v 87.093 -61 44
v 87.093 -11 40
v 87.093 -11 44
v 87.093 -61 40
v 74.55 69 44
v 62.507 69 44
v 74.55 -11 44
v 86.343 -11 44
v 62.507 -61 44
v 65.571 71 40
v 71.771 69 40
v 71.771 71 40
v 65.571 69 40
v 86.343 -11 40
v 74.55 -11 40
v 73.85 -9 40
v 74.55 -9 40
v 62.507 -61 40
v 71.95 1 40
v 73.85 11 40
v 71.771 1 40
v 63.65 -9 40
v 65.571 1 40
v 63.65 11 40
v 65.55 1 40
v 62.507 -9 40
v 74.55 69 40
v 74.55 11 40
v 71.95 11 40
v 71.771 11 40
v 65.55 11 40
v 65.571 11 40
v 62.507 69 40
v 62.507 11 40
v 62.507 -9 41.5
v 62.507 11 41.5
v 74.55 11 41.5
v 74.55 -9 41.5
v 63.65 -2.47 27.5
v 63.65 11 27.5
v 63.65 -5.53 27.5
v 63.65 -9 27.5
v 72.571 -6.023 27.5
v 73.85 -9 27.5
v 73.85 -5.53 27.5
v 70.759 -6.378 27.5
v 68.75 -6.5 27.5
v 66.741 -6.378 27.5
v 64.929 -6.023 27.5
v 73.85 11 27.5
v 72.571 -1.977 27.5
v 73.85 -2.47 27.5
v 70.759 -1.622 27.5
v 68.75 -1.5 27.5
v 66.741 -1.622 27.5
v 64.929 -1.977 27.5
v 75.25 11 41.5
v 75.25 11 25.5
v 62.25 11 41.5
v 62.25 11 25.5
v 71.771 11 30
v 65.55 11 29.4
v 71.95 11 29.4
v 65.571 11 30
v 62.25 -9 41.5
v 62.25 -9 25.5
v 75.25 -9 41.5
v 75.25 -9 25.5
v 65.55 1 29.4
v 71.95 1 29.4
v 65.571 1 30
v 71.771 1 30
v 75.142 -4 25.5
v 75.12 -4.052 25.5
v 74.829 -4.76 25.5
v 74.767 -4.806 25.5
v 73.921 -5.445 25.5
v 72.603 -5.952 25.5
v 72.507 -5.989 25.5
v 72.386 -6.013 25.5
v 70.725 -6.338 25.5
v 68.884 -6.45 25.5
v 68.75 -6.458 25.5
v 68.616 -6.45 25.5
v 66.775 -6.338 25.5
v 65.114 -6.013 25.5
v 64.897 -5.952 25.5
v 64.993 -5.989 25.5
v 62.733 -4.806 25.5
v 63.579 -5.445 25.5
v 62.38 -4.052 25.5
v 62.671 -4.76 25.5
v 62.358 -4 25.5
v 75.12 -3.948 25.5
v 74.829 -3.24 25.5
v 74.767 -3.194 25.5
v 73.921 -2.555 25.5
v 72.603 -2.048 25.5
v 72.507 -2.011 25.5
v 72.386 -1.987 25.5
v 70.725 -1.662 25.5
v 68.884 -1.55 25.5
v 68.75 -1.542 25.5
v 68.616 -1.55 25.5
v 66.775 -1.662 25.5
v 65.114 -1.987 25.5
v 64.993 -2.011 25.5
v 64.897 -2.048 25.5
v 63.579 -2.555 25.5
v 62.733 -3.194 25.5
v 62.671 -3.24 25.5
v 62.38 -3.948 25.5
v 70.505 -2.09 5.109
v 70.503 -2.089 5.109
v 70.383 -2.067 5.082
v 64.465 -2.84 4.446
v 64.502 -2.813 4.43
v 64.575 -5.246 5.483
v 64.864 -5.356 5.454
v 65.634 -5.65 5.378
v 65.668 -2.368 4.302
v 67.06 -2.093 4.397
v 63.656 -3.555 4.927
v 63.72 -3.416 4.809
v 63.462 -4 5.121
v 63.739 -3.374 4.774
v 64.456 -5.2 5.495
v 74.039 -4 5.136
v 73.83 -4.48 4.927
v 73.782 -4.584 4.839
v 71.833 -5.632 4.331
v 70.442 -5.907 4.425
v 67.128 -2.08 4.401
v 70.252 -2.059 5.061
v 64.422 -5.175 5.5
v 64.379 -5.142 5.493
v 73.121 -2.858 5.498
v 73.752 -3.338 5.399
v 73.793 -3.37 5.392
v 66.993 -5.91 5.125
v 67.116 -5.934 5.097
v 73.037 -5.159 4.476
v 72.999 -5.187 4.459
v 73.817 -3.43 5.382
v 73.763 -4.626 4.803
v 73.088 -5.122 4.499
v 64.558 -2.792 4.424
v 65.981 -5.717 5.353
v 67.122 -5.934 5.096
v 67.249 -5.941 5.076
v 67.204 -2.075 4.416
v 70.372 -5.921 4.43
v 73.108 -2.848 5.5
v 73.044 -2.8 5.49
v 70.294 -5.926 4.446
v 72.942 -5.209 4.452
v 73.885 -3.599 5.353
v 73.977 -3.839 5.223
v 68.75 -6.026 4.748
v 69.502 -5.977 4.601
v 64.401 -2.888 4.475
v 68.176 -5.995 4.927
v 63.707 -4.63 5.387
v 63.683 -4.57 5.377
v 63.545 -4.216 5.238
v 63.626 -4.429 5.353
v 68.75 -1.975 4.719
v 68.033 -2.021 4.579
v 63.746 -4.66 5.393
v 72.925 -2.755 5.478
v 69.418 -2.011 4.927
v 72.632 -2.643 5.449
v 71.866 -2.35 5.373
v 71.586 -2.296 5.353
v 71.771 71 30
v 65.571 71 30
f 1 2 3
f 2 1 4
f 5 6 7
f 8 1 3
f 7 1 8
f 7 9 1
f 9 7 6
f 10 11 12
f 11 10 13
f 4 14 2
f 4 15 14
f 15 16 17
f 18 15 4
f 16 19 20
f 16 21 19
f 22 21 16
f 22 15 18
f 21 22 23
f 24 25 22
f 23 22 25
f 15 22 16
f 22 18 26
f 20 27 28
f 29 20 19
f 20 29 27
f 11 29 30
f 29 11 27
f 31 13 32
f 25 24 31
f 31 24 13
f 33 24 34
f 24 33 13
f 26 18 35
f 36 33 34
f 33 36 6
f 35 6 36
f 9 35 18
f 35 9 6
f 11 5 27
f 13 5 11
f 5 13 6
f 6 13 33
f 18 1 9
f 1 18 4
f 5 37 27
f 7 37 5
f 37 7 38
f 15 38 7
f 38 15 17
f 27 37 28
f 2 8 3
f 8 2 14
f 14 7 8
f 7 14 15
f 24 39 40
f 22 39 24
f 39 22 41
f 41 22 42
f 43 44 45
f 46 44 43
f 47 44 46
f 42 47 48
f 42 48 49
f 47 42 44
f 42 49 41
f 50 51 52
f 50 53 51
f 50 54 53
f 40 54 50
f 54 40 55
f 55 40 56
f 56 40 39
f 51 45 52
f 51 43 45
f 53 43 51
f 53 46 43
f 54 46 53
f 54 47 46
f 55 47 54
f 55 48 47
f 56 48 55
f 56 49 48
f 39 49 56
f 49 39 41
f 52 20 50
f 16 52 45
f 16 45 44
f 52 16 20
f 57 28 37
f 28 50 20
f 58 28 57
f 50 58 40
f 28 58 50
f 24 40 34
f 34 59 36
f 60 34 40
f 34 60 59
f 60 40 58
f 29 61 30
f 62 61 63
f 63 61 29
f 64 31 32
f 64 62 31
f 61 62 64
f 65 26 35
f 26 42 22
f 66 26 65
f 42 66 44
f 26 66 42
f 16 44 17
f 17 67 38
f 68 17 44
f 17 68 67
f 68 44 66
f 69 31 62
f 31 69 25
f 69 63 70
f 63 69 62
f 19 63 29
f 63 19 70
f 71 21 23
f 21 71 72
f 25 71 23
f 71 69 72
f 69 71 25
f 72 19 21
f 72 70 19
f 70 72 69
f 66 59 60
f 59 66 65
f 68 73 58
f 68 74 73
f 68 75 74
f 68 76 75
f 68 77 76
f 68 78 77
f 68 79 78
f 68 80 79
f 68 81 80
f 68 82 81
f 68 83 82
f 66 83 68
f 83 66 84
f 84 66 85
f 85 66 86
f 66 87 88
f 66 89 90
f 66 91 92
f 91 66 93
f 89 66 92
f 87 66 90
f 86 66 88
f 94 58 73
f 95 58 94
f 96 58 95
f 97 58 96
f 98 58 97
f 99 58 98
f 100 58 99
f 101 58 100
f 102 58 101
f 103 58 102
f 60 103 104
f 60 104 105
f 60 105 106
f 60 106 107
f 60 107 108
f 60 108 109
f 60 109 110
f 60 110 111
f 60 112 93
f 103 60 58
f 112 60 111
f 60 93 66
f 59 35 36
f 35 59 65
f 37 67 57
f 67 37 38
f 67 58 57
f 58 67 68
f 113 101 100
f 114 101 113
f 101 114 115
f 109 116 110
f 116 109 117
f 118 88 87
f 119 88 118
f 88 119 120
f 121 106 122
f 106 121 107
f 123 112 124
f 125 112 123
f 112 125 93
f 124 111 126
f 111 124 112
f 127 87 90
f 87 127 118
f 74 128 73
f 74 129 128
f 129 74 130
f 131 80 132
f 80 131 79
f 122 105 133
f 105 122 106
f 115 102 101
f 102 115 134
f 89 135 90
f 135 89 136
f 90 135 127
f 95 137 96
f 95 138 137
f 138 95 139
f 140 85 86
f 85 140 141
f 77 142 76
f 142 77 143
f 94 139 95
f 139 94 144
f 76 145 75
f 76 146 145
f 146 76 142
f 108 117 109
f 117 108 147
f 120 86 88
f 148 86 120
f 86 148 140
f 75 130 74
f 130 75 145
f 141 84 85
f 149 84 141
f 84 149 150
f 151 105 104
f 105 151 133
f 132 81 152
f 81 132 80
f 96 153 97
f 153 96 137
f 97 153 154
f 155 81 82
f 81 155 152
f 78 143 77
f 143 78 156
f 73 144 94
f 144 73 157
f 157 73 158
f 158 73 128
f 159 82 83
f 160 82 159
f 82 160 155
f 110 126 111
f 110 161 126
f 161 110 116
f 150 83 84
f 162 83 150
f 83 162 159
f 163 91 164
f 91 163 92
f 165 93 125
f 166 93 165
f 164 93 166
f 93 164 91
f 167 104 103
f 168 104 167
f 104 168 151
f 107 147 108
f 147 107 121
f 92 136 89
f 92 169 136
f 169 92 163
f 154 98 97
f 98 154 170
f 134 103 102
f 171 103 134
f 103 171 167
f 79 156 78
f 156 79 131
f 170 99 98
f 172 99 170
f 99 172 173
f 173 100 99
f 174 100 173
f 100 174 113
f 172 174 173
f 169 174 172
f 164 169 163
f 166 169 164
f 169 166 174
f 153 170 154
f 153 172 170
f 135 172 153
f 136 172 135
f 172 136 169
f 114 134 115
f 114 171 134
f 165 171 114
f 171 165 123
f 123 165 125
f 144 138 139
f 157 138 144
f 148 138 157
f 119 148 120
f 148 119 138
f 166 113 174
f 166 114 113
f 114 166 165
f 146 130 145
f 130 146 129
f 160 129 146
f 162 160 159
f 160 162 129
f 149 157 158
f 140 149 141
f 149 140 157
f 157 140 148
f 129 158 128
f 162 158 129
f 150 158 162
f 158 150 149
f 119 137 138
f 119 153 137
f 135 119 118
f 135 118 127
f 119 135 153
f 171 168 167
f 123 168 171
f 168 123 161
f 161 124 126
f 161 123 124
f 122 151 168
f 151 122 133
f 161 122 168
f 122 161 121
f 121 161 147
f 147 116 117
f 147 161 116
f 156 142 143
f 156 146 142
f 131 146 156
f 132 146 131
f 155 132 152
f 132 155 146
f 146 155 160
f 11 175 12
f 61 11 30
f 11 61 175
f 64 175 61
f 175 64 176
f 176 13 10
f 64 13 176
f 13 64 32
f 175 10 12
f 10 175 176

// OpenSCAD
// file: irkem_hammerTips_v1.scad
tol = 0.2;
extrWall = 1.7+tol;
extrH = 12.9+tol;//12.6+tol;
extrW = 10+tol;

hammerY = 20;
hammerZ = 24;

$fn = 20;

module hammerTips(){
//Strike cylinder:
//v1: made elliptical and added skew-angle indentation to:
//      1. Avoid hitting adjacent strings
//      2. Maximize likelihood of striking proper string
//      3. Ensure that hammer tip force on the string is centering
//Prior cone geometry resulted in adjacent string strikes in y axis for most keys
    difference(){
        translate([0,-5,0]) scale([2.6,1,1]) cylinder(hammerZ,2.5,2);
        translate([-12,-1.8,25]) rotate([0,90,-15]) cylinder(hammerZ,3,3);
    }
difference(){
    translate([-6.5,-10,-14]) cube([13,hammerY,16]);
    union(){uChan();translate([-extrW/2,-hammerY/2,-extrH]) cube([extrW,hammerY/2,extrH]);
}
}
module uChan(){
difference(){
    translate([-extrW/2,-hammerY/2,-extrH]) cube([extrW,hammerY,extrH]);
    translate([-extrW/2+extrWall,-hammerY/2,-extrH-extrWall]) cube([extrW-2*extrWall,hammerY,extrH]);
}
}
}

//hammerTips();
// main file
include <irkem_hammerTips_v1.scad>

xO = -6;
yO = -11;
zO = 40;

kH = 4;
bH = 10;
wL = 50;
bL = 80;
oct = 6.5 * 25.4;
gap = 2;
n_oct = 1;//5;
n_keys = 12 * n_oct;
oset = -1;

sharpFlag = 1;

for (k = [5]){//:1:(n_keys-1)]){
    //
    translate([k*13.75+6.0+xO,12+yO,-12.5+zO]) rotate([0,180,0]) hammerTips();
}

for (k = [0:1:(n_oct-1)]){

//C:
//color("ivory") translate([k*oct+0+xO,0+yO,0+zO]) cube([oct*1/12-gap,bL,kH]);
//color("ivory") translate([k*oct+0+xO,-wL+yO,0+zO]) cube([oct*1/7-gap,wL,kH]);

////C#:
//if (sharpFlag){    
//color("black") translate([k*oct+oct*1/12+xO,gap+yO,0+zO]) cube([oct*1/12-gap,bL,kH+bH]);
//}//

////D:
//color("ivory") translate([k*oct+oct*2/12+xO,0+yO,0+zO]) cube([oct*1/12-gap,bL,kH]);
//color("ivory") translate([k*oct+oct*1/7+xO,-wL+yO,0+zO]) cube([oct*1/7-gap,wL,kH]);//

////D#:
//if (sharpFlag){
//color("black") translate([k*oct+oct*3/12+xO,gap+yO,0+zO]) cube([oct*1/12-gap,bL,kH+bH]);
//}//

////E:
//color("ivory") translate([k*oct+oct*4/12+xO,0+yO,0+zO]) cube([2+oct*1/12-gap,bL,kH]);
//color("ivory") translate([k*oct+oct*2/7+xO,-wL+yO,0+zO]) cube([oct*1/7-gap,wL,kH]);//

////F:
color("ivory") difference(){
    translate([k*oct+oct*3/7+xO-2.25,-wL+yO,0+zO]) cube([oct*1/7-gap+3,wL+bL,kH]);
    translate([k*oct+oct*6/12-2+xO,0+yO,0+zO]) cube([4+oct*(1/7-1/12)-gap+1,bL,kH]);
}
color("ivory") translate([k*oct+oct*3/7+xO,-wL+yO,0+zO]) cube([oct*1/7-gap,wL,kH]);//

////F#:
//if (sharpFlag){
//color("black") translate([k*oct+oct*6/12+xO,gap+yO,0+zO]) cube([oct*1/12-gap,bL,kH+bH]);
//}//

////G:
//color("ivory") translate([k*oct+oct*7/12+xO,0+yO,0+zO]) cube([oct*1/12-gap,bL,kH]);
//color("ivory") translate([k*oct+oct*4/7+xO,-wL+yO,0+zO]) cube([oct*1/7-gap,wL,kH]);//

////G#:
//if (sharpFlag){
//color("black") translate([k*oct+oct*8/12+xO,gap+yO,0+zO]) cube([oct*1/12-gap,bL,kH+bH]);
//}//

////A:
//color("ivory") translate([k*oct+oct*9/12+xO,0+yO,0+zO]) cube([oct*1/12-gap,bL,kH]);
//color("ivory") translate([k*oct+oct*5/7+xO,-wL+yO,0+zO]) cube([oct*1/7-gap,wL,kH]);//

////A#:
//if (sharpFlag){
//color("black") translate([k*oct+oct*10/12+xO,gap+yO,0+zO]) cube([oct*1/12-gap,bL,kH+bH]);
//}//

////B:
//color("ivory") translate([k*oct+oct*11/12+xO,0+yO,0+zO]) cube([oct*1/12-gap,bL,kH]);
//color("ivory") translate([k*oct+oct*6/7+xO,-wL+yO,0+zO]) cube([oct*1/7-gap,wL,kH]);//

}

for (i = [5]){//,2,4,5,7,9,11]){//[0:1:(n_keys-1)]){
    translate([oset+oct*i/12+(oct*1/12-6.2)/2+xO,2+10+yO,-10+zO]) cube([6.2,bL-10,10]);
}

//if (sharpFlag){
//    for (i = [1,3,6,8,10]){//[0:1:(n_keys-1)]){
//    translate([oset+oct*i/12+(oct*1/12-6.2)/2+xO,2+10+yO,-10+zO]) cube([6.2,bL-10,10]);
//}
//}
